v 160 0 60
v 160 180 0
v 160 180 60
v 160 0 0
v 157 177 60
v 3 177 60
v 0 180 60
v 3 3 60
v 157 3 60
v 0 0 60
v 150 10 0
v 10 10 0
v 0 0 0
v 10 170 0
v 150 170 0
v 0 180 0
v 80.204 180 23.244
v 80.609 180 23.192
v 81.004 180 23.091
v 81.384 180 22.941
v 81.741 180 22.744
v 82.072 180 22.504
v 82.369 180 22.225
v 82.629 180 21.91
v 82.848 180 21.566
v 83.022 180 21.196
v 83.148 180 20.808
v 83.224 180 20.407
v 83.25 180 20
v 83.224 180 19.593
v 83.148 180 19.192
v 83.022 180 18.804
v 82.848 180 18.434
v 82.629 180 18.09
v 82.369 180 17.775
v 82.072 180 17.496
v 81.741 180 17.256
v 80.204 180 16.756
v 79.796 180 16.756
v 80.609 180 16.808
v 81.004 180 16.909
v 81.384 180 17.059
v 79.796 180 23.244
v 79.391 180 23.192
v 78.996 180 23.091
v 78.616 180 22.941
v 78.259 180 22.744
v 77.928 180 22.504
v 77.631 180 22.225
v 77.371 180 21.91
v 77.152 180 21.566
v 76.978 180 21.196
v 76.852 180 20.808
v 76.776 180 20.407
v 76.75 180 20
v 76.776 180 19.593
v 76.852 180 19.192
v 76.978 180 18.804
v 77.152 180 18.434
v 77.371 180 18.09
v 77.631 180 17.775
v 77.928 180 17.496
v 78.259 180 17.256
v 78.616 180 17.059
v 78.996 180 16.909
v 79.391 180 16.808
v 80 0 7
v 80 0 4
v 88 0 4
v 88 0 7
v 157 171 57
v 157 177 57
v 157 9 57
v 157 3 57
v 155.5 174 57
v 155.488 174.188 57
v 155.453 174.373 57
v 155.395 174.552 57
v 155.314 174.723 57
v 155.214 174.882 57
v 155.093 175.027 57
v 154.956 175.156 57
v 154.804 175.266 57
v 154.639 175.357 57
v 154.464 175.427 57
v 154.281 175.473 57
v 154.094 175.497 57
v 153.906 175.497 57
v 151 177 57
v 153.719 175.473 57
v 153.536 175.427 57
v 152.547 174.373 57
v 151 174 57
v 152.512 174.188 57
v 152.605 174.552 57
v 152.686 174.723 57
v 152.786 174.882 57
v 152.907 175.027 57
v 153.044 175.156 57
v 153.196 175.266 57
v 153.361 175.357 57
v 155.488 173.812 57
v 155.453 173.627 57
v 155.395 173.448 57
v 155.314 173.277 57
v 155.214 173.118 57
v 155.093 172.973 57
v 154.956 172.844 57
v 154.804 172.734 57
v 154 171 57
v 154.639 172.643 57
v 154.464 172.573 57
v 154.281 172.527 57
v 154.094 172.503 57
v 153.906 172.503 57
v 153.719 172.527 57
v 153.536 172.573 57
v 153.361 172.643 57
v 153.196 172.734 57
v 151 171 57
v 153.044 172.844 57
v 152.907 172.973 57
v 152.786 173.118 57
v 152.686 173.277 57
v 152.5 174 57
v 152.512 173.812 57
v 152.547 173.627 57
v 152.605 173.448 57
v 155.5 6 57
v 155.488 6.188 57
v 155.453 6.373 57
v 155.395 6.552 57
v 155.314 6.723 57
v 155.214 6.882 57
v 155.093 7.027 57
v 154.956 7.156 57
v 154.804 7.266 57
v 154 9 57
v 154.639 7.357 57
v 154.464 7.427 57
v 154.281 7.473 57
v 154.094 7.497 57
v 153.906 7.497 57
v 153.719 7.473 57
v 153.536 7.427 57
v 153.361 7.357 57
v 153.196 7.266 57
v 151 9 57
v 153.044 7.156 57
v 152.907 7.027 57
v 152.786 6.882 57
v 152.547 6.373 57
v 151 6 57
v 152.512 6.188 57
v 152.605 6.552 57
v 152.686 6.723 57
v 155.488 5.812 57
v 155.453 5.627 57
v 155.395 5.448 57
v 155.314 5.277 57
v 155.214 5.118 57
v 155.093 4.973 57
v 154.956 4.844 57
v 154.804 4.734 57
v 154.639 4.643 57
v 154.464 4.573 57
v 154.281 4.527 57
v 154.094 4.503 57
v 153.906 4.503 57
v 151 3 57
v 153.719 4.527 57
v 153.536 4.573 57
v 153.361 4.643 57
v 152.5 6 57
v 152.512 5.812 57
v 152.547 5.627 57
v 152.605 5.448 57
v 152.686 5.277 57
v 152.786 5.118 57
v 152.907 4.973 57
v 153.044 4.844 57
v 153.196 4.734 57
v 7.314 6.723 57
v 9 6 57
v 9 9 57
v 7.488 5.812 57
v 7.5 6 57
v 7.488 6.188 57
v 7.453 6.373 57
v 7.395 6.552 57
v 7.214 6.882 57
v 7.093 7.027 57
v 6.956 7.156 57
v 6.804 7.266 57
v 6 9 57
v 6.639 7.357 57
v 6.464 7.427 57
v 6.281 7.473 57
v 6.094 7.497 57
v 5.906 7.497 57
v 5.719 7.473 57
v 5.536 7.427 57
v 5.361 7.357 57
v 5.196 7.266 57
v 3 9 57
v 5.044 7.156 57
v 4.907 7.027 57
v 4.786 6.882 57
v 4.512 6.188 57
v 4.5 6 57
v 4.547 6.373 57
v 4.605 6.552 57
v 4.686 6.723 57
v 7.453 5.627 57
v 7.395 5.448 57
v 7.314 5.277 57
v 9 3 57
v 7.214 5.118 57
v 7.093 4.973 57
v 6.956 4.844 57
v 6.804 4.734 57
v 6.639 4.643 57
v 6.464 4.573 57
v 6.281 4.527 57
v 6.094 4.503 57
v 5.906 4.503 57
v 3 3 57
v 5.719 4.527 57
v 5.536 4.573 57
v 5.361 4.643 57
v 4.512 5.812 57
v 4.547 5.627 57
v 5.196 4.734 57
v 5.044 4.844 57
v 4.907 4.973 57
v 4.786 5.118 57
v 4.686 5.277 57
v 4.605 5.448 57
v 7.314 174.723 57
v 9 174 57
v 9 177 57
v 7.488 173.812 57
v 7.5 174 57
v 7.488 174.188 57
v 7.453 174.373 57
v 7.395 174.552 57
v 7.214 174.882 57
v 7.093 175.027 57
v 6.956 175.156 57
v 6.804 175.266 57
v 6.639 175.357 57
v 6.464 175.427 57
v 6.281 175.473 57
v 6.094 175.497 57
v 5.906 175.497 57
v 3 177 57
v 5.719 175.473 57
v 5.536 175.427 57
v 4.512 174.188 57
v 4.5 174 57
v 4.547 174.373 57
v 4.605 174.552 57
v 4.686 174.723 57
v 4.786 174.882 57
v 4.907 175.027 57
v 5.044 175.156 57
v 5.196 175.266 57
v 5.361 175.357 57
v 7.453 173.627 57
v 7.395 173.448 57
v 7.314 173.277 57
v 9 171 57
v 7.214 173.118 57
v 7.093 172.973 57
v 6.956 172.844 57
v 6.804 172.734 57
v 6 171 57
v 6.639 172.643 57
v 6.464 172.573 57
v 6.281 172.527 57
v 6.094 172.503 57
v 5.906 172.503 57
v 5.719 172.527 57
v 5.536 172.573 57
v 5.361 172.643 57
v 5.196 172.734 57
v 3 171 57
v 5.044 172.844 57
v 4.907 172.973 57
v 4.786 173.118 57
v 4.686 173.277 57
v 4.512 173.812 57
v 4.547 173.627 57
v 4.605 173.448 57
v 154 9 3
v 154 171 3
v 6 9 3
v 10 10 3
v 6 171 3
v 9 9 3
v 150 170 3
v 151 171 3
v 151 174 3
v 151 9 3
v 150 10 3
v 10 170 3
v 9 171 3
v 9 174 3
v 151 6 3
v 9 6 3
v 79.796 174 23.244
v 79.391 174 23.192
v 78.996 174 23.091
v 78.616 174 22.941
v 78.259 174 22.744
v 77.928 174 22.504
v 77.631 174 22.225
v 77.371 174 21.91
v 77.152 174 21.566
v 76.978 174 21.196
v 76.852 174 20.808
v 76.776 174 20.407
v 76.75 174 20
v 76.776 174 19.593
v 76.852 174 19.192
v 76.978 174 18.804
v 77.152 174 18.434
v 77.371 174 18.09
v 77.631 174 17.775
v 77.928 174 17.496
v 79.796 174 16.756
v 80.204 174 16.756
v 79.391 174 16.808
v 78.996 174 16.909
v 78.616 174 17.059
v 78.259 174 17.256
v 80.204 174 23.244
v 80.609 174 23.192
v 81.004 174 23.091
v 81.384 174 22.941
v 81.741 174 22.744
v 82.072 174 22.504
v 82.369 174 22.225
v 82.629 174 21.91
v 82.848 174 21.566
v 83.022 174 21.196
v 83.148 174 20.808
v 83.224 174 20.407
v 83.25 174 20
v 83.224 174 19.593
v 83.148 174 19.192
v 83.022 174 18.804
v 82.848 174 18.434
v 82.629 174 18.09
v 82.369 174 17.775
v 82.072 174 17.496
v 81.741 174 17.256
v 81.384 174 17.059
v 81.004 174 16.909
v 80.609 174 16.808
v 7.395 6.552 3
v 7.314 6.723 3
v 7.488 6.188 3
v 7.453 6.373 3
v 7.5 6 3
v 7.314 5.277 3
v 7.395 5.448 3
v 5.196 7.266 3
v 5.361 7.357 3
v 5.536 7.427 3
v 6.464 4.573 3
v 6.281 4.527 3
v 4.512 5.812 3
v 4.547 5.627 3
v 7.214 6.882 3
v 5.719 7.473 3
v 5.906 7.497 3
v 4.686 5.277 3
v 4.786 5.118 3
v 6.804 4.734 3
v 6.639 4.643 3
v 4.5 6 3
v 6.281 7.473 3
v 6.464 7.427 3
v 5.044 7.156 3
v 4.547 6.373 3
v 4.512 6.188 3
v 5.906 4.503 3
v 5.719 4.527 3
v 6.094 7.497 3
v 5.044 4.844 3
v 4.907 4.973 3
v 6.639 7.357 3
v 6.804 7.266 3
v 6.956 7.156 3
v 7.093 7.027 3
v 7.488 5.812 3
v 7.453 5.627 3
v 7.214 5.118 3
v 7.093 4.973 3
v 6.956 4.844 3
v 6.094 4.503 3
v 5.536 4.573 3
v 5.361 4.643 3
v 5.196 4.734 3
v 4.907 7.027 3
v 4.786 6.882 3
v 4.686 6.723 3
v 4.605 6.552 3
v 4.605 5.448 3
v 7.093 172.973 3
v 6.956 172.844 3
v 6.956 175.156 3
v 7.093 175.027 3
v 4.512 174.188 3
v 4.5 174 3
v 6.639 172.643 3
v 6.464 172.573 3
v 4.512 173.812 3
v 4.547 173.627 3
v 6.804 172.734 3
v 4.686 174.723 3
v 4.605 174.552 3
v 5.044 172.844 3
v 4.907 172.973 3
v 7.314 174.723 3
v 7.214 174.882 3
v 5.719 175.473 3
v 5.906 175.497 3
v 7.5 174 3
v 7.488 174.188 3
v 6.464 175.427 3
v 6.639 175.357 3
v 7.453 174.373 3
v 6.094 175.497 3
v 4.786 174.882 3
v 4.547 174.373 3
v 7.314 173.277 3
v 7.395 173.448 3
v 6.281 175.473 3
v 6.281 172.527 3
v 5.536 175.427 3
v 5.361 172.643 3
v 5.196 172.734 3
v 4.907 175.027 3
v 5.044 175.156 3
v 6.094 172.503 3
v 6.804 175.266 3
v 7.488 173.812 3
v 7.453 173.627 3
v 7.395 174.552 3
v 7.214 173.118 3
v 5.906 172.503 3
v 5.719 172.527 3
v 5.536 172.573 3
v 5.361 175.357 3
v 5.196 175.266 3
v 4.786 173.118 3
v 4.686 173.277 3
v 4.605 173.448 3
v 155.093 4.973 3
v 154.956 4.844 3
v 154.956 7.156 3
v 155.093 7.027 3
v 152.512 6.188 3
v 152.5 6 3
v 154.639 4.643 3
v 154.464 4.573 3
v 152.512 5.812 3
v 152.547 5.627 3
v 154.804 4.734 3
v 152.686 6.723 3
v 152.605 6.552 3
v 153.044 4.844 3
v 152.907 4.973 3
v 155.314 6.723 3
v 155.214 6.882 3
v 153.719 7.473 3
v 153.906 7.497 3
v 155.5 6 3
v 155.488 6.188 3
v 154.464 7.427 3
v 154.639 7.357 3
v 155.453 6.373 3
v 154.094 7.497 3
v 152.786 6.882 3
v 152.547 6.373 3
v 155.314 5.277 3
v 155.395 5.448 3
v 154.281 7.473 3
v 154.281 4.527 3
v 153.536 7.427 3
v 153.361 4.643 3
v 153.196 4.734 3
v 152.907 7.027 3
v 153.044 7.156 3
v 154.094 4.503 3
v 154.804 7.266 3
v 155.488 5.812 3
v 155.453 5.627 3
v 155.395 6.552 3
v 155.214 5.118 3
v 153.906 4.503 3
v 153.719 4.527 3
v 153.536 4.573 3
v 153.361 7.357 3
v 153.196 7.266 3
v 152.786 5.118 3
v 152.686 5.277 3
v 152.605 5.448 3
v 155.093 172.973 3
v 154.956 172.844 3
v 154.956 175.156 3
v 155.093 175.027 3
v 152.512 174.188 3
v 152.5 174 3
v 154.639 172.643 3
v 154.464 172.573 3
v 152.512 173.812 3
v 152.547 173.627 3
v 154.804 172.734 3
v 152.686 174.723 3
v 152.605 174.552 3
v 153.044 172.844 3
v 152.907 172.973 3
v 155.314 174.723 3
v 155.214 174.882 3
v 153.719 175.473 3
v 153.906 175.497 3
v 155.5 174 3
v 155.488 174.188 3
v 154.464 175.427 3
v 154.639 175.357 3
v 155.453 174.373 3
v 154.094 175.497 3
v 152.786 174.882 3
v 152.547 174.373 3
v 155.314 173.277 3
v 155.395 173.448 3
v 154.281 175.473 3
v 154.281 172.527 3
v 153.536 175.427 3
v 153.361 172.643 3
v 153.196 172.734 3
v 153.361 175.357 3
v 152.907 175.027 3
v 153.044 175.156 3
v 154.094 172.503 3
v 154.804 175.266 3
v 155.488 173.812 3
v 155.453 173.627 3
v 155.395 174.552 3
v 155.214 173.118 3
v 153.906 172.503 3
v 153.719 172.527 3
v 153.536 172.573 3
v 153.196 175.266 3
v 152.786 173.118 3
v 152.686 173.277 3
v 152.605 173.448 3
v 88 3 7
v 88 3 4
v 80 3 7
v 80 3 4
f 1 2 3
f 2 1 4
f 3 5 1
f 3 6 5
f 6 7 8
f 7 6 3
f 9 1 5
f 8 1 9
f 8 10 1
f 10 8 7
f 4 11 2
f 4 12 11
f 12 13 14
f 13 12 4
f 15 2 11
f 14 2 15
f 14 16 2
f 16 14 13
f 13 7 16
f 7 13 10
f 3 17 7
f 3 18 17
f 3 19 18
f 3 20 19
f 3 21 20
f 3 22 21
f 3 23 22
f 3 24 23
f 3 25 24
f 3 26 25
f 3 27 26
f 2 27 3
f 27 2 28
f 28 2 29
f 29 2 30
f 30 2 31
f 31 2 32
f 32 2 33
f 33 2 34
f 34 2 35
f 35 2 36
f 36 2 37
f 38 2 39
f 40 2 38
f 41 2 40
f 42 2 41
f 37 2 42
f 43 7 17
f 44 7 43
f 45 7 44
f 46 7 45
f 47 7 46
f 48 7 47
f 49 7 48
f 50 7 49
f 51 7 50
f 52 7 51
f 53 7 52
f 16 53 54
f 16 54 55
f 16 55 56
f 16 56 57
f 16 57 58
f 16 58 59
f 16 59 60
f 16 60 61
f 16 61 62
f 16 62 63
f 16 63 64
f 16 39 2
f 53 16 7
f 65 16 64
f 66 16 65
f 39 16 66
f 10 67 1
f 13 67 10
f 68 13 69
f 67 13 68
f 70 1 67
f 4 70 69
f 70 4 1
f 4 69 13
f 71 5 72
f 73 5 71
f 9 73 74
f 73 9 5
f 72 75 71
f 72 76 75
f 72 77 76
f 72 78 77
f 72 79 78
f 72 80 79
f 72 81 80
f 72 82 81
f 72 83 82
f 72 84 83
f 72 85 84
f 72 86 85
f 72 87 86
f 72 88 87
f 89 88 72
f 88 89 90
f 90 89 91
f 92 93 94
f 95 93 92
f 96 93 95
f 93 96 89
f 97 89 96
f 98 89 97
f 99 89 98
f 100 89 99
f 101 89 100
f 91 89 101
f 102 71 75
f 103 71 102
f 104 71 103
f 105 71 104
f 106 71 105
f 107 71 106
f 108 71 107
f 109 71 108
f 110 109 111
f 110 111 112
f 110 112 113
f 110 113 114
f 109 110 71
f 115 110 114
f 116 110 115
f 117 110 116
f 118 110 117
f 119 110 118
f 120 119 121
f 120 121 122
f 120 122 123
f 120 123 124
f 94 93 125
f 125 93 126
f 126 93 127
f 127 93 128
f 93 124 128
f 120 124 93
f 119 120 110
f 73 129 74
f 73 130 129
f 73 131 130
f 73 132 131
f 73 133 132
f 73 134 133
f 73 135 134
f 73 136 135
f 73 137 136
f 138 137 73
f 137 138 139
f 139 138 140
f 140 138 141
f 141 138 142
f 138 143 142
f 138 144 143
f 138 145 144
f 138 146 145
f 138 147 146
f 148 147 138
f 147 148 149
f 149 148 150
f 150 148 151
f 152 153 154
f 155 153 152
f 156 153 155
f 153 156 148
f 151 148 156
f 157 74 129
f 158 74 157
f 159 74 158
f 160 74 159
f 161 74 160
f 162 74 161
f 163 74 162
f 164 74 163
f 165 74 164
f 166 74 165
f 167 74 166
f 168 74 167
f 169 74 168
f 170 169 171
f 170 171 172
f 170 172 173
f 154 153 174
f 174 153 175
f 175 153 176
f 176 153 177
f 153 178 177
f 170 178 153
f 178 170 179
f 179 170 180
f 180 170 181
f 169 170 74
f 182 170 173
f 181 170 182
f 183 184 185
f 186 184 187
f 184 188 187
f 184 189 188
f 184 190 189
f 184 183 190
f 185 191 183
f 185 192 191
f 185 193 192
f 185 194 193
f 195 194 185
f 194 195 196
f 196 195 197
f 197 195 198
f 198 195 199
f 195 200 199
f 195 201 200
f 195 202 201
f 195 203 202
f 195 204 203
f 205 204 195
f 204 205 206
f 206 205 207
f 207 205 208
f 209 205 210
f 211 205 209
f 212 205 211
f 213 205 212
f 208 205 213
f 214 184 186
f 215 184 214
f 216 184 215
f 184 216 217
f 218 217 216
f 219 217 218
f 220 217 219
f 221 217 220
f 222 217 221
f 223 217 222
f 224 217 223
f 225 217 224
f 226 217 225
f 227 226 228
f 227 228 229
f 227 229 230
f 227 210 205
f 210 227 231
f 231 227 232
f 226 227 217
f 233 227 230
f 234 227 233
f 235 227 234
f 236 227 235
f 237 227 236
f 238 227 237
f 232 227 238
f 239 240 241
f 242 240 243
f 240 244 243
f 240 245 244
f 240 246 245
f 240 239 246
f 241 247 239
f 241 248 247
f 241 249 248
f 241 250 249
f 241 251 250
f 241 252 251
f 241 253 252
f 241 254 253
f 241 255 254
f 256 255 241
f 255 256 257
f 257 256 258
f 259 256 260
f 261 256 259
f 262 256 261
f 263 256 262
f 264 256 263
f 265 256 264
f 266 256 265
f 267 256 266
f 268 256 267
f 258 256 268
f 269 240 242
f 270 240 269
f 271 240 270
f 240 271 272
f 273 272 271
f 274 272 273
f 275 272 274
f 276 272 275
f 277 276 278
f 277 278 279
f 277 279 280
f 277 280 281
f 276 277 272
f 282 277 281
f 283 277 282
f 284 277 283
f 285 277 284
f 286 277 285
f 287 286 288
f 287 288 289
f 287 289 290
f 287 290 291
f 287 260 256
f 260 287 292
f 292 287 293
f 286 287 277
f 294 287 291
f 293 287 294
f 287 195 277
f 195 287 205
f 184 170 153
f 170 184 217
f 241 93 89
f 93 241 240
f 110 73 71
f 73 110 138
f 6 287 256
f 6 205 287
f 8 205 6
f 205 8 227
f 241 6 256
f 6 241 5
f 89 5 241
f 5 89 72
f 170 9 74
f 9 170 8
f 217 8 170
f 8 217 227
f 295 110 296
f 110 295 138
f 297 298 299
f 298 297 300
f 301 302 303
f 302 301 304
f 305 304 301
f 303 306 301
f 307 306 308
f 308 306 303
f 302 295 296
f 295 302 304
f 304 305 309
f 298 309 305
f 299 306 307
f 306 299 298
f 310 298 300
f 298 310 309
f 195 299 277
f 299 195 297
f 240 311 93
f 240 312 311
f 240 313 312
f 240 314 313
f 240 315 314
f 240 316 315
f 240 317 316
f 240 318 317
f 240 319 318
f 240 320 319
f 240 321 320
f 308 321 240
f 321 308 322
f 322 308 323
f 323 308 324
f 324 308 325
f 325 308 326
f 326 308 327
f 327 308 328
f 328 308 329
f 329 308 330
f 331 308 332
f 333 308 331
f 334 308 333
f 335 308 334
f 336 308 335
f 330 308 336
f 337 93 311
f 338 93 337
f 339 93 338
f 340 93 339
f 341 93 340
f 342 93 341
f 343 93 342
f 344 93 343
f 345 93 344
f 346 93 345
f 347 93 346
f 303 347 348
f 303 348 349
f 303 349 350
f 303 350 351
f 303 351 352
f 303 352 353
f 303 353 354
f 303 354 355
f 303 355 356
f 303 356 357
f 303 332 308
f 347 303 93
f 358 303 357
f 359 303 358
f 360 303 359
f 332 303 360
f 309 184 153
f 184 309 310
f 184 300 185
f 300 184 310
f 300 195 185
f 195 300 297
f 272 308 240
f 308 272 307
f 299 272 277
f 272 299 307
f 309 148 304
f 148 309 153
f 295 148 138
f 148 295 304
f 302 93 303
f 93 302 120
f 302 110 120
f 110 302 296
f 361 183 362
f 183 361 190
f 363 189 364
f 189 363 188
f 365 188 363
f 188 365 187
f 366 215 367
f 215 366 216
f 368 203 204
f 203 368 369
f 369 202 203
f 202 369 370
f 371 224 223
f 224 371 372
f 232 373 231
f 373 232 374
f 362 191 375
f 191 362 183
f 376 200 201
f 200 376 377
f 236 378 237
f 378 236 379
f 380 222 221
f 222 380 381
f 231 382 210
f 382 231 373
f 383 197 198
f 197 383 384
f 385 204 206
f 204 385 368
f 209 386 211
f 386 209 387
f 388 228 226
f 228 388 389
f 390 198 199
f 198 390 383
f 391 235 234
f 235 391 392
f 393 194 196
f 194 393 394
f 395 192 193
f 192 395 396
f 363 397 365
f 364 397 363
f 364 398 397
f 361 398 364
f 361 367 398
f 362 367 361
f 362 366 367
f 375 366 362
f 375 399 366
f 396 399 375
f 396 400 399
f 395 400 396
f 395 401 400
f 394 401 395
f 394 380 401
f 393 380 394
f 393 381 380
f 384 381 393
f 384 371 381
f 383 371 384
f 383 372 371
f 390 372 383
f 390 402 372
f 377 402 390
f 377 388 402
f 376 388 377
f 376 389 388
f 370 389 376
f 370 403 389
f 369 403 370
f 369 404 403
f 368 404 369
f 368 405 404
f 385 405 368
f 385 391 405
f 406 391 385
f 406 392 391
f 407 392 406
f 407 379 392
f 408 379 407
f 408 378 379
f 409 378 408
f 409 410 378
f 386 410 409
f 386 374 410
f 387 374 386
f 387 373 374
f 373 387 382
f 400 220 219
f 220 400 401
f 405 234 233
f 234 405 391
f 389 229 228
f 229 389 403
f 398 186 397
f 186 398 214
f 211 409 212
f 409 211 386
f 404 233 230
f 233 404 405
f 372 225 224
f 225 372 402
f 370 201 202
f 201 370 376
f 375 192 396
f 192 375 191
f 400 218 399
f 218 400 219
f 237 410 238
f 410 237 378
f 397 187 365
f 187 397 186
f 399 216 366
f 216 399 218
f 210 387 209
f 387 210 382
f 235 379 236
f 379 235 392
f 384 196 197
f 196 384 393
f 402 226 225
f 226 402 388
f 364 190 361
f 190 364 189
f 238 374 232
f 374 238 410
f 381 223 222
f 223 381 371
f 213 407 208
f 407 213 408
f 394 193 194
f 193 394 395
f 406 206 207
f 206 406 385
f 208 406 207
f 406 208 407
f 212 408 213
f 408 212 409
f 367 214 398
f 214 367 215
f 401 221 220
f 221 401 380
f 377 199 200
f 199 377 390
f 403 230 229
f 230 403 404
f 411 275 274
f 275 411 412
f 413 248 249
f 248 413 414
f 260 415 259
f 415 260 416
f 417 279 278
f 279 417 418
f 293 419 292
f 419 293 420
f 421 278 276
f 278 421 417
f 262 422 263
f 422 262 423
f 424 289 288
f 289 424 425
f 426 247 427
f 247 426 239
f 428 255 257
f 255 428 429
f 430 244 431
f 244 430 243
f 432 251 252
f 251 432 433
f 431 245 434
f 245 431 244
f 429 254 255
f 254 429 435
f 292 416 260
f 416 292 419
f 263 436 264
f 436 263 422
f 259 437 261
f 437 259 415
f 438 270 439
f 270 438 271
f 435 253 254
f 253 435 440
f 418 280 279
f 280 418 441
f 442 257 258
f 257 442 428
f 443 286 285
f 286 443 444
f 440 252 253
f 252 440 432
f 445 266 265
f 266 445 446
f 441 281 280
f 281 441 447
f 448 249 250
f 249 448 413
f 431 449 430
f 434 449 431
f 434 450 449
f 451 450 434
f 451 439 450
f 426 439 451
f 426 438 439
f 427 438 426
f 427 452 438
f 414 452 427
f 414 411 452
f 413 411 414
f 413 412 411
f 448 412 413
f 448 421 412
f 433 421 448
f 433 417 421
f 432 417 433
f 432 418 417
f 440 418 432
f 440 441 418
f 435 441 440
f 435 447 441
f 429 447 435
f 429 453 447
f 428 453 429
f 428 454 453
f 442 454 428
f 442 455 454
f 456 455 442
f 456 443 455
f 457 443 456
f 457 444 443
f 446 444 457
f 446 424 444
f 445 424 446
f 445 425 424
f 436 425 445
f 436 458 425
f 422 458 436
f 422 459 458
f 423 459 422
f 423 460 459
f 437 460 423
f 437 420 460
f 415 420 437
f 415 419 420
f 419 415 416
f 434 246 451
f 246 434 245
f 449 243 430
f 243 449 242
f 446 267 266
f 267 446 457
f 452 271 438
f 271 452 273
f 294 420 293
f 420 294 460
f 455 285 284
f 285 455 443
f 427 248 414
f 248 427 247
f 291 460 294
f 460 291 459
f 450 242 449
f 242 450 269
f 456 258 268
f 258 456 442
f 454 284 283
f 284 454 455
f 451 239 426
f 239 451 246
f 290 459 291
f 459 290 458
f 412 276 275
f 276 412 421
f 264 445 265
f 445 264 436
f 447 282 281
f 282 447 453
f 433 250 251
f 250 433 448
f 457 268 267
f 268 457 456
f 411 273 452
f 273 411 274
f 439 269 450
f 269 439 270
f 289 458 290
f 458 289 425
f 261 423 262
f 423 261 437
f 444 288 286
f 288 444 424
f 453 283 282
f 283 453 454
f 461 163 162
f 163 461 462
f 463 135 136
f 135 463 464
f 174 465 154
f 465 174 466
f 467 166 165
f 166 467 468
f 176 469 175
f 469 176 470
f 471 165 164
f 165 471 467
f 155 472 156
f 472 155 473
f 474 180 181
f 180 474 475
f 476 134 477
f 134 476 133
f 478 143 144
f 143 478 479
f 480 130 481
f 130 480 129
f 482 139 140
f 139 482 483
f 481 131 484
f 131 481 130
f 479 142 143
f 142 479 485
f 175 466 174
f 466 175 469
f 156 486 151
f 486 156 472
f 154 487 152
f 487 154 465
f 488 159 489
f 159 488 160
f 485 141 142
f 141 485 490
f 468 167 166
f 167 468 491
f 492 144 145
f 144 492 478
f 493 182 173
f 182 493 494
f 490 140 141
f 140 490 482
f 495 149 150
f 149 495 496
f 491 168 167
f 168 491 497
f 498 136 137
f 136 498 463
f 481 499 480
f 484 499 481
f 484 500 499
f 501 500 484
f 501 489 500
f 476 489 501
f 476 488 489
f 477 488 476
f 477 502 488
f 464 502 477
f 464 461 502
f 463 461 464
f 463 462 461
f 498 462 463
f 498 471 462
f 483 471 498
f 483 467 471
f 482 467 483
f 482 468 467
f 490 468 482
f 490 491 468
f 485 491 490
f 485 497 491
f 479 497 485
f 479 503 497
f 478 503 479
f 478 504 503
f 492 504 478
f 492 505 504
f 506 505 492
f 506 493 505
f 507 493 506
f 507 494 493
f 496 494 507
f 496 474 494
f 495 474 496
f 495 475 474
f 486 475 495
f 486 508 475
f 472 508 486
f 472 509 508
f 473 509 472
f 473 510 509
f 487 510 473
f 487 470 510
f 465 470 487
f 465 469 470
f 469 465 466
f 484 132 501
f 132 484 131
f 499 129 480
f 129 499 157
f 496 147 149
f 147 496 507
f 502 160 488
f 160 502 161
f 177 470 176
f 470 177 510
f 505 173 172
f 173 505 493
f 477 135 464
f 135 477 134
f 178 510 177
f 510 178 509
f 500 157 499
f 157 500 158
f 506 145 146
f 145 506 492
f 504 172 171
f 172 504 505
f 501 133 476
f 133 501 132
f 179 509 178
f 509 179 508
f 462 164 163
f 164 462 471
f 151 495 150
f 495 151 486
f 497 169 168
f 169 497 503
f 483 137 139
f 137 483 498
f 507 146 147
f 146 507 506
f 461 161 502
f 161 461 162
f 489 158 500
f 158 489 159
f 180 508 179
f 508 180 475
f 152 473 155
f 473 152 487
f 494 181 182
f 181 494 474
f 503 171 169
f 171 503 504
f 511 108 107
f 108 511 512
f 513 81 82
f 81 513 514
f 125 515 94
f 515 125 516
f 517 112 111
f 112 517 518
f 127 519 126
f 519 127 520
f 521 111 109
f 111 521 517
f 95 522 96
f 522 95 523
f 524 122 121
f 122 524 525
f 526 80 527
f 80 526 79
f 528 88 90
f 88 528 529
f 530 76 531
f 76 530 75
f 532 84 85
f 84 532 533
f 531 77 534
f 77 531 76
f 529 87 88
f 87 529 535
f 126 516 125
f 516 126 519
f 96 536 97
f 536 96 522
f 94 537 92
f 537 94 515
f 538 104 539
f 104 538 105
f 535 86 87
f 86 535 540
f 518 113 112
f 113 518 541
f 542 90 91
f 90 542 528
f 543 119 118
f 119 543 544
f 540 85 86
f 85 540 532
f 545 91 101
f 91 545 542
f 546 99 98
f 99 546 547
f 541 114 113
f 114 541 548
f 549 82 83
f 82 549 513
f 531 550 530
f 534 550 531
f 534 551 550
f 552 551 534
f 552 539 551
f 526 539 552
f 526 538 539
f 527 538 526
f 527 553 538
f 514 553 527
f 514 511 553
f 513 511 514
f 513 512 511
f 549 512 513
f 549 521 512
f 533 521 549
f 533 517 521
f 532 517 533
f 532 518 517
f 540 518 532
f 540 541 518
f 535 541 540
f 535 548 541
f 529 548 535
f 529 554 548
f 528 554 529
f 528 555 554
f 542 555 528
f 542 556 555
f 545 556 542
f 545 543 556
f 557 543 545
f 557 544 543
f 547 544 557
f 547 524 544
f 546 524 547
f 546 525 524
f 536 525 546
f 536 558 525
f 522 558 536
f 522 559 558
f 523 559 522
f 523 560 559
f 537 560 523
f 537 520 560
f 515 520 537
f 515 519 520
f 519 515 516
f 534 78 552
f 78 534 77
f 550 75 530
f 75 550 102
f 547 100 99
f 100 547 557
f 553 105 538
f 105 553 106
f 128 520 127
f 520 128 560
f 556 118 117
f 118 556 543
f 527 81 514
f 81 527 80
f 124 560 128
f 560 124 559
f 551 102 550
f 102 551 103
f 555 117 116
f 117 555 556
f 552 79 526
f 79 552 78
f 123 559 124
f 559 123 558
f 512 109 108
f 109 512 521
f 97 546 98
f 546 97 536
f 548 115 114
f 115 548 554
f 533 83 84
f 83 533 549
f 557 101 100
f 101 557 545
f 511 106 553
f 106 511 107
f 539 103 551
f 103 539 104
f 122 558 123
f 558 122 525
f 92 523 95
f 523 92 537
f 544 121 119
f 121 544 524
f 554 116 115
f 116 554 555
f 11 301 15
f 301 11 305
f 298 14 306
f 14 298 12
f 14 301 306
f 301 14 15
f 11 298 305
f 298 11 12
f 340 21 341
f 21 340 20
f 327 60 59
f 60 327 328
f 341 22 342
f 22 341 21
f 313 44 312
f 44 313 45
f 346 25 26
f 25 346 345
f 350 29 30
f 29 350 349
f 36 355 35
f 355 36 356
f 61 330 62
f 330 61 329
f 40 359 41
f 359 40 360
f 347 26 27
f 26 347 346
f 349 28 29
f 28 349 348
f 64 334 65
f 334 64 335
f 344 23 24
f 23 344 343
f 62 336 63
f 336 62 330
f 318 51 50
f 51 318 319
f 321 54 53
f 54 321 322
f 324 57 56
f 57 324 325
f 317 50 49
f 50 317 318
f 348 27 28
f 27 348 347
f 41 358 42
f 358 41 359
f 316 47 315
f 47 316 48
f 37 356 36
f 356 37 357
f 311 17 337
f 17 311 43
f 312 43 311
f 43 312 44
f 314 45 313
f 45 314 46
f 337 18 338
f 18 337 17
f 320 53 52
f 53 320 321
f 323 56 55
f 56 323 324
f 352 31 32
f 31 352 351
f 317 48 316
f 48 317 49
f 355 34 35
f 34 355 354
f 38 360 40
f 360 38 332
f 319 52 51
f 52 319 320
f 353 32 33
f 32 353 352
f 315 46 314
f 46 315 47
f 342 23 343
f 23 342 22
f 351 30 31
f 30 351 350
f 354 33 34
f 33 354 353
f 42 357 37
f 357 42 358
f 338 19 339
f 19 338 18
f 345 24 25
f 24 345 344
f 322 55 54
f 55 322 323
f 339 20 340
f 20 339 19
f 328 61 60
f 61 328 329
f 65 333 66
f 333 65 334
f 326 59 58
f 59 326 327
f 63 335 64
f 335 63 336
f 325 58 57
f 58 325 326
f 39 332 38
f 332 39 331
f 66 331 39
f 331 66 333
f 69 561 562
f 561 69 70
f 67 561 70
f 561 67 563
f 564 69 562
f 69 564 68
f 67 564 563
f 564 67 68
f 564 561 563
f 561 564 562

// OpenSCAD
// file: constants.scad
// Eastbay RCRadio Transmitter Case
// Constants
// dd: diameter
// xx: width
// yy: depth
// zz: height

$fn=50;

box_xx = 160;            // main box
box_yy = 180;
box_zz = 60;
wall = 3;

post_wid = 6;

plate_zz = 3;

screw3a_dd = 3.0;       // mounting screw
screw3b_dd = 3.2;

button_dd = 8.1;        // hole size for button
switch_dd = 8.1;        // hole size for switch and button

power_dd = 12;          // power switch

antenna_dd = 44;        // antenna_hole (TODO);
// main file
include <constants.scad>

module post(hh) {
    cube([post_wid, post_wid, hh]);
}
module posthole(hh) {
    translate([post_wid/2,post_wid/2,0]) cylinder(hh, d=screw3a_dd);
}

module case() {
    difference() {
        union() {
            difference() {
                cube([box_xx, box_yy, box_zz]);
                translate([wall,wall,box_zz-plate_zz]) cube([box_xx-2*wall,box_yy-2*wall,plate_zz]);
                translate([wall*2,wall*2,wall]) cube([box_xx-4*wall,box_yy-4*wall,box_zz-wall]);
            }
            // posts
            for (i=[wall,box_xx-wall-post_wid], j=[wall,box_yy-wall-post_wid]) {
                translate([i,j,wall]) post(box_zz-wall-plate_zz);
            }
        }
        //post holes
        for (i=[wall,box_xx-wall-post_wid], j=[wall,box_yy-wall-post_wid]) {
            translate([i,j,wall]) posthole(box_zz-wall-plate_zz);
        }
        // cutout on bottom for quicker prototype printing
        translate([10,10,0]) cube([box_xx-20,box_yy-20,wall]);
    }
}

antenna_hole_dd = 6.5;

module antenna_hole() {
    cylinder(wall*2,d=antenna_hole_dd);
}

module charger_hole() {
    // micro usb size?
    cube([8,wall,3]);
}

module holed_case() {
    difference() {
        case();
        #translate([box_xx/2,box_yy, box_zz*1/3]) rotate([90,0,0]) antenna_hole();
        #translate([box_xx/2,0,wall+1]) charger_hole();
    }
}

holed_case();
